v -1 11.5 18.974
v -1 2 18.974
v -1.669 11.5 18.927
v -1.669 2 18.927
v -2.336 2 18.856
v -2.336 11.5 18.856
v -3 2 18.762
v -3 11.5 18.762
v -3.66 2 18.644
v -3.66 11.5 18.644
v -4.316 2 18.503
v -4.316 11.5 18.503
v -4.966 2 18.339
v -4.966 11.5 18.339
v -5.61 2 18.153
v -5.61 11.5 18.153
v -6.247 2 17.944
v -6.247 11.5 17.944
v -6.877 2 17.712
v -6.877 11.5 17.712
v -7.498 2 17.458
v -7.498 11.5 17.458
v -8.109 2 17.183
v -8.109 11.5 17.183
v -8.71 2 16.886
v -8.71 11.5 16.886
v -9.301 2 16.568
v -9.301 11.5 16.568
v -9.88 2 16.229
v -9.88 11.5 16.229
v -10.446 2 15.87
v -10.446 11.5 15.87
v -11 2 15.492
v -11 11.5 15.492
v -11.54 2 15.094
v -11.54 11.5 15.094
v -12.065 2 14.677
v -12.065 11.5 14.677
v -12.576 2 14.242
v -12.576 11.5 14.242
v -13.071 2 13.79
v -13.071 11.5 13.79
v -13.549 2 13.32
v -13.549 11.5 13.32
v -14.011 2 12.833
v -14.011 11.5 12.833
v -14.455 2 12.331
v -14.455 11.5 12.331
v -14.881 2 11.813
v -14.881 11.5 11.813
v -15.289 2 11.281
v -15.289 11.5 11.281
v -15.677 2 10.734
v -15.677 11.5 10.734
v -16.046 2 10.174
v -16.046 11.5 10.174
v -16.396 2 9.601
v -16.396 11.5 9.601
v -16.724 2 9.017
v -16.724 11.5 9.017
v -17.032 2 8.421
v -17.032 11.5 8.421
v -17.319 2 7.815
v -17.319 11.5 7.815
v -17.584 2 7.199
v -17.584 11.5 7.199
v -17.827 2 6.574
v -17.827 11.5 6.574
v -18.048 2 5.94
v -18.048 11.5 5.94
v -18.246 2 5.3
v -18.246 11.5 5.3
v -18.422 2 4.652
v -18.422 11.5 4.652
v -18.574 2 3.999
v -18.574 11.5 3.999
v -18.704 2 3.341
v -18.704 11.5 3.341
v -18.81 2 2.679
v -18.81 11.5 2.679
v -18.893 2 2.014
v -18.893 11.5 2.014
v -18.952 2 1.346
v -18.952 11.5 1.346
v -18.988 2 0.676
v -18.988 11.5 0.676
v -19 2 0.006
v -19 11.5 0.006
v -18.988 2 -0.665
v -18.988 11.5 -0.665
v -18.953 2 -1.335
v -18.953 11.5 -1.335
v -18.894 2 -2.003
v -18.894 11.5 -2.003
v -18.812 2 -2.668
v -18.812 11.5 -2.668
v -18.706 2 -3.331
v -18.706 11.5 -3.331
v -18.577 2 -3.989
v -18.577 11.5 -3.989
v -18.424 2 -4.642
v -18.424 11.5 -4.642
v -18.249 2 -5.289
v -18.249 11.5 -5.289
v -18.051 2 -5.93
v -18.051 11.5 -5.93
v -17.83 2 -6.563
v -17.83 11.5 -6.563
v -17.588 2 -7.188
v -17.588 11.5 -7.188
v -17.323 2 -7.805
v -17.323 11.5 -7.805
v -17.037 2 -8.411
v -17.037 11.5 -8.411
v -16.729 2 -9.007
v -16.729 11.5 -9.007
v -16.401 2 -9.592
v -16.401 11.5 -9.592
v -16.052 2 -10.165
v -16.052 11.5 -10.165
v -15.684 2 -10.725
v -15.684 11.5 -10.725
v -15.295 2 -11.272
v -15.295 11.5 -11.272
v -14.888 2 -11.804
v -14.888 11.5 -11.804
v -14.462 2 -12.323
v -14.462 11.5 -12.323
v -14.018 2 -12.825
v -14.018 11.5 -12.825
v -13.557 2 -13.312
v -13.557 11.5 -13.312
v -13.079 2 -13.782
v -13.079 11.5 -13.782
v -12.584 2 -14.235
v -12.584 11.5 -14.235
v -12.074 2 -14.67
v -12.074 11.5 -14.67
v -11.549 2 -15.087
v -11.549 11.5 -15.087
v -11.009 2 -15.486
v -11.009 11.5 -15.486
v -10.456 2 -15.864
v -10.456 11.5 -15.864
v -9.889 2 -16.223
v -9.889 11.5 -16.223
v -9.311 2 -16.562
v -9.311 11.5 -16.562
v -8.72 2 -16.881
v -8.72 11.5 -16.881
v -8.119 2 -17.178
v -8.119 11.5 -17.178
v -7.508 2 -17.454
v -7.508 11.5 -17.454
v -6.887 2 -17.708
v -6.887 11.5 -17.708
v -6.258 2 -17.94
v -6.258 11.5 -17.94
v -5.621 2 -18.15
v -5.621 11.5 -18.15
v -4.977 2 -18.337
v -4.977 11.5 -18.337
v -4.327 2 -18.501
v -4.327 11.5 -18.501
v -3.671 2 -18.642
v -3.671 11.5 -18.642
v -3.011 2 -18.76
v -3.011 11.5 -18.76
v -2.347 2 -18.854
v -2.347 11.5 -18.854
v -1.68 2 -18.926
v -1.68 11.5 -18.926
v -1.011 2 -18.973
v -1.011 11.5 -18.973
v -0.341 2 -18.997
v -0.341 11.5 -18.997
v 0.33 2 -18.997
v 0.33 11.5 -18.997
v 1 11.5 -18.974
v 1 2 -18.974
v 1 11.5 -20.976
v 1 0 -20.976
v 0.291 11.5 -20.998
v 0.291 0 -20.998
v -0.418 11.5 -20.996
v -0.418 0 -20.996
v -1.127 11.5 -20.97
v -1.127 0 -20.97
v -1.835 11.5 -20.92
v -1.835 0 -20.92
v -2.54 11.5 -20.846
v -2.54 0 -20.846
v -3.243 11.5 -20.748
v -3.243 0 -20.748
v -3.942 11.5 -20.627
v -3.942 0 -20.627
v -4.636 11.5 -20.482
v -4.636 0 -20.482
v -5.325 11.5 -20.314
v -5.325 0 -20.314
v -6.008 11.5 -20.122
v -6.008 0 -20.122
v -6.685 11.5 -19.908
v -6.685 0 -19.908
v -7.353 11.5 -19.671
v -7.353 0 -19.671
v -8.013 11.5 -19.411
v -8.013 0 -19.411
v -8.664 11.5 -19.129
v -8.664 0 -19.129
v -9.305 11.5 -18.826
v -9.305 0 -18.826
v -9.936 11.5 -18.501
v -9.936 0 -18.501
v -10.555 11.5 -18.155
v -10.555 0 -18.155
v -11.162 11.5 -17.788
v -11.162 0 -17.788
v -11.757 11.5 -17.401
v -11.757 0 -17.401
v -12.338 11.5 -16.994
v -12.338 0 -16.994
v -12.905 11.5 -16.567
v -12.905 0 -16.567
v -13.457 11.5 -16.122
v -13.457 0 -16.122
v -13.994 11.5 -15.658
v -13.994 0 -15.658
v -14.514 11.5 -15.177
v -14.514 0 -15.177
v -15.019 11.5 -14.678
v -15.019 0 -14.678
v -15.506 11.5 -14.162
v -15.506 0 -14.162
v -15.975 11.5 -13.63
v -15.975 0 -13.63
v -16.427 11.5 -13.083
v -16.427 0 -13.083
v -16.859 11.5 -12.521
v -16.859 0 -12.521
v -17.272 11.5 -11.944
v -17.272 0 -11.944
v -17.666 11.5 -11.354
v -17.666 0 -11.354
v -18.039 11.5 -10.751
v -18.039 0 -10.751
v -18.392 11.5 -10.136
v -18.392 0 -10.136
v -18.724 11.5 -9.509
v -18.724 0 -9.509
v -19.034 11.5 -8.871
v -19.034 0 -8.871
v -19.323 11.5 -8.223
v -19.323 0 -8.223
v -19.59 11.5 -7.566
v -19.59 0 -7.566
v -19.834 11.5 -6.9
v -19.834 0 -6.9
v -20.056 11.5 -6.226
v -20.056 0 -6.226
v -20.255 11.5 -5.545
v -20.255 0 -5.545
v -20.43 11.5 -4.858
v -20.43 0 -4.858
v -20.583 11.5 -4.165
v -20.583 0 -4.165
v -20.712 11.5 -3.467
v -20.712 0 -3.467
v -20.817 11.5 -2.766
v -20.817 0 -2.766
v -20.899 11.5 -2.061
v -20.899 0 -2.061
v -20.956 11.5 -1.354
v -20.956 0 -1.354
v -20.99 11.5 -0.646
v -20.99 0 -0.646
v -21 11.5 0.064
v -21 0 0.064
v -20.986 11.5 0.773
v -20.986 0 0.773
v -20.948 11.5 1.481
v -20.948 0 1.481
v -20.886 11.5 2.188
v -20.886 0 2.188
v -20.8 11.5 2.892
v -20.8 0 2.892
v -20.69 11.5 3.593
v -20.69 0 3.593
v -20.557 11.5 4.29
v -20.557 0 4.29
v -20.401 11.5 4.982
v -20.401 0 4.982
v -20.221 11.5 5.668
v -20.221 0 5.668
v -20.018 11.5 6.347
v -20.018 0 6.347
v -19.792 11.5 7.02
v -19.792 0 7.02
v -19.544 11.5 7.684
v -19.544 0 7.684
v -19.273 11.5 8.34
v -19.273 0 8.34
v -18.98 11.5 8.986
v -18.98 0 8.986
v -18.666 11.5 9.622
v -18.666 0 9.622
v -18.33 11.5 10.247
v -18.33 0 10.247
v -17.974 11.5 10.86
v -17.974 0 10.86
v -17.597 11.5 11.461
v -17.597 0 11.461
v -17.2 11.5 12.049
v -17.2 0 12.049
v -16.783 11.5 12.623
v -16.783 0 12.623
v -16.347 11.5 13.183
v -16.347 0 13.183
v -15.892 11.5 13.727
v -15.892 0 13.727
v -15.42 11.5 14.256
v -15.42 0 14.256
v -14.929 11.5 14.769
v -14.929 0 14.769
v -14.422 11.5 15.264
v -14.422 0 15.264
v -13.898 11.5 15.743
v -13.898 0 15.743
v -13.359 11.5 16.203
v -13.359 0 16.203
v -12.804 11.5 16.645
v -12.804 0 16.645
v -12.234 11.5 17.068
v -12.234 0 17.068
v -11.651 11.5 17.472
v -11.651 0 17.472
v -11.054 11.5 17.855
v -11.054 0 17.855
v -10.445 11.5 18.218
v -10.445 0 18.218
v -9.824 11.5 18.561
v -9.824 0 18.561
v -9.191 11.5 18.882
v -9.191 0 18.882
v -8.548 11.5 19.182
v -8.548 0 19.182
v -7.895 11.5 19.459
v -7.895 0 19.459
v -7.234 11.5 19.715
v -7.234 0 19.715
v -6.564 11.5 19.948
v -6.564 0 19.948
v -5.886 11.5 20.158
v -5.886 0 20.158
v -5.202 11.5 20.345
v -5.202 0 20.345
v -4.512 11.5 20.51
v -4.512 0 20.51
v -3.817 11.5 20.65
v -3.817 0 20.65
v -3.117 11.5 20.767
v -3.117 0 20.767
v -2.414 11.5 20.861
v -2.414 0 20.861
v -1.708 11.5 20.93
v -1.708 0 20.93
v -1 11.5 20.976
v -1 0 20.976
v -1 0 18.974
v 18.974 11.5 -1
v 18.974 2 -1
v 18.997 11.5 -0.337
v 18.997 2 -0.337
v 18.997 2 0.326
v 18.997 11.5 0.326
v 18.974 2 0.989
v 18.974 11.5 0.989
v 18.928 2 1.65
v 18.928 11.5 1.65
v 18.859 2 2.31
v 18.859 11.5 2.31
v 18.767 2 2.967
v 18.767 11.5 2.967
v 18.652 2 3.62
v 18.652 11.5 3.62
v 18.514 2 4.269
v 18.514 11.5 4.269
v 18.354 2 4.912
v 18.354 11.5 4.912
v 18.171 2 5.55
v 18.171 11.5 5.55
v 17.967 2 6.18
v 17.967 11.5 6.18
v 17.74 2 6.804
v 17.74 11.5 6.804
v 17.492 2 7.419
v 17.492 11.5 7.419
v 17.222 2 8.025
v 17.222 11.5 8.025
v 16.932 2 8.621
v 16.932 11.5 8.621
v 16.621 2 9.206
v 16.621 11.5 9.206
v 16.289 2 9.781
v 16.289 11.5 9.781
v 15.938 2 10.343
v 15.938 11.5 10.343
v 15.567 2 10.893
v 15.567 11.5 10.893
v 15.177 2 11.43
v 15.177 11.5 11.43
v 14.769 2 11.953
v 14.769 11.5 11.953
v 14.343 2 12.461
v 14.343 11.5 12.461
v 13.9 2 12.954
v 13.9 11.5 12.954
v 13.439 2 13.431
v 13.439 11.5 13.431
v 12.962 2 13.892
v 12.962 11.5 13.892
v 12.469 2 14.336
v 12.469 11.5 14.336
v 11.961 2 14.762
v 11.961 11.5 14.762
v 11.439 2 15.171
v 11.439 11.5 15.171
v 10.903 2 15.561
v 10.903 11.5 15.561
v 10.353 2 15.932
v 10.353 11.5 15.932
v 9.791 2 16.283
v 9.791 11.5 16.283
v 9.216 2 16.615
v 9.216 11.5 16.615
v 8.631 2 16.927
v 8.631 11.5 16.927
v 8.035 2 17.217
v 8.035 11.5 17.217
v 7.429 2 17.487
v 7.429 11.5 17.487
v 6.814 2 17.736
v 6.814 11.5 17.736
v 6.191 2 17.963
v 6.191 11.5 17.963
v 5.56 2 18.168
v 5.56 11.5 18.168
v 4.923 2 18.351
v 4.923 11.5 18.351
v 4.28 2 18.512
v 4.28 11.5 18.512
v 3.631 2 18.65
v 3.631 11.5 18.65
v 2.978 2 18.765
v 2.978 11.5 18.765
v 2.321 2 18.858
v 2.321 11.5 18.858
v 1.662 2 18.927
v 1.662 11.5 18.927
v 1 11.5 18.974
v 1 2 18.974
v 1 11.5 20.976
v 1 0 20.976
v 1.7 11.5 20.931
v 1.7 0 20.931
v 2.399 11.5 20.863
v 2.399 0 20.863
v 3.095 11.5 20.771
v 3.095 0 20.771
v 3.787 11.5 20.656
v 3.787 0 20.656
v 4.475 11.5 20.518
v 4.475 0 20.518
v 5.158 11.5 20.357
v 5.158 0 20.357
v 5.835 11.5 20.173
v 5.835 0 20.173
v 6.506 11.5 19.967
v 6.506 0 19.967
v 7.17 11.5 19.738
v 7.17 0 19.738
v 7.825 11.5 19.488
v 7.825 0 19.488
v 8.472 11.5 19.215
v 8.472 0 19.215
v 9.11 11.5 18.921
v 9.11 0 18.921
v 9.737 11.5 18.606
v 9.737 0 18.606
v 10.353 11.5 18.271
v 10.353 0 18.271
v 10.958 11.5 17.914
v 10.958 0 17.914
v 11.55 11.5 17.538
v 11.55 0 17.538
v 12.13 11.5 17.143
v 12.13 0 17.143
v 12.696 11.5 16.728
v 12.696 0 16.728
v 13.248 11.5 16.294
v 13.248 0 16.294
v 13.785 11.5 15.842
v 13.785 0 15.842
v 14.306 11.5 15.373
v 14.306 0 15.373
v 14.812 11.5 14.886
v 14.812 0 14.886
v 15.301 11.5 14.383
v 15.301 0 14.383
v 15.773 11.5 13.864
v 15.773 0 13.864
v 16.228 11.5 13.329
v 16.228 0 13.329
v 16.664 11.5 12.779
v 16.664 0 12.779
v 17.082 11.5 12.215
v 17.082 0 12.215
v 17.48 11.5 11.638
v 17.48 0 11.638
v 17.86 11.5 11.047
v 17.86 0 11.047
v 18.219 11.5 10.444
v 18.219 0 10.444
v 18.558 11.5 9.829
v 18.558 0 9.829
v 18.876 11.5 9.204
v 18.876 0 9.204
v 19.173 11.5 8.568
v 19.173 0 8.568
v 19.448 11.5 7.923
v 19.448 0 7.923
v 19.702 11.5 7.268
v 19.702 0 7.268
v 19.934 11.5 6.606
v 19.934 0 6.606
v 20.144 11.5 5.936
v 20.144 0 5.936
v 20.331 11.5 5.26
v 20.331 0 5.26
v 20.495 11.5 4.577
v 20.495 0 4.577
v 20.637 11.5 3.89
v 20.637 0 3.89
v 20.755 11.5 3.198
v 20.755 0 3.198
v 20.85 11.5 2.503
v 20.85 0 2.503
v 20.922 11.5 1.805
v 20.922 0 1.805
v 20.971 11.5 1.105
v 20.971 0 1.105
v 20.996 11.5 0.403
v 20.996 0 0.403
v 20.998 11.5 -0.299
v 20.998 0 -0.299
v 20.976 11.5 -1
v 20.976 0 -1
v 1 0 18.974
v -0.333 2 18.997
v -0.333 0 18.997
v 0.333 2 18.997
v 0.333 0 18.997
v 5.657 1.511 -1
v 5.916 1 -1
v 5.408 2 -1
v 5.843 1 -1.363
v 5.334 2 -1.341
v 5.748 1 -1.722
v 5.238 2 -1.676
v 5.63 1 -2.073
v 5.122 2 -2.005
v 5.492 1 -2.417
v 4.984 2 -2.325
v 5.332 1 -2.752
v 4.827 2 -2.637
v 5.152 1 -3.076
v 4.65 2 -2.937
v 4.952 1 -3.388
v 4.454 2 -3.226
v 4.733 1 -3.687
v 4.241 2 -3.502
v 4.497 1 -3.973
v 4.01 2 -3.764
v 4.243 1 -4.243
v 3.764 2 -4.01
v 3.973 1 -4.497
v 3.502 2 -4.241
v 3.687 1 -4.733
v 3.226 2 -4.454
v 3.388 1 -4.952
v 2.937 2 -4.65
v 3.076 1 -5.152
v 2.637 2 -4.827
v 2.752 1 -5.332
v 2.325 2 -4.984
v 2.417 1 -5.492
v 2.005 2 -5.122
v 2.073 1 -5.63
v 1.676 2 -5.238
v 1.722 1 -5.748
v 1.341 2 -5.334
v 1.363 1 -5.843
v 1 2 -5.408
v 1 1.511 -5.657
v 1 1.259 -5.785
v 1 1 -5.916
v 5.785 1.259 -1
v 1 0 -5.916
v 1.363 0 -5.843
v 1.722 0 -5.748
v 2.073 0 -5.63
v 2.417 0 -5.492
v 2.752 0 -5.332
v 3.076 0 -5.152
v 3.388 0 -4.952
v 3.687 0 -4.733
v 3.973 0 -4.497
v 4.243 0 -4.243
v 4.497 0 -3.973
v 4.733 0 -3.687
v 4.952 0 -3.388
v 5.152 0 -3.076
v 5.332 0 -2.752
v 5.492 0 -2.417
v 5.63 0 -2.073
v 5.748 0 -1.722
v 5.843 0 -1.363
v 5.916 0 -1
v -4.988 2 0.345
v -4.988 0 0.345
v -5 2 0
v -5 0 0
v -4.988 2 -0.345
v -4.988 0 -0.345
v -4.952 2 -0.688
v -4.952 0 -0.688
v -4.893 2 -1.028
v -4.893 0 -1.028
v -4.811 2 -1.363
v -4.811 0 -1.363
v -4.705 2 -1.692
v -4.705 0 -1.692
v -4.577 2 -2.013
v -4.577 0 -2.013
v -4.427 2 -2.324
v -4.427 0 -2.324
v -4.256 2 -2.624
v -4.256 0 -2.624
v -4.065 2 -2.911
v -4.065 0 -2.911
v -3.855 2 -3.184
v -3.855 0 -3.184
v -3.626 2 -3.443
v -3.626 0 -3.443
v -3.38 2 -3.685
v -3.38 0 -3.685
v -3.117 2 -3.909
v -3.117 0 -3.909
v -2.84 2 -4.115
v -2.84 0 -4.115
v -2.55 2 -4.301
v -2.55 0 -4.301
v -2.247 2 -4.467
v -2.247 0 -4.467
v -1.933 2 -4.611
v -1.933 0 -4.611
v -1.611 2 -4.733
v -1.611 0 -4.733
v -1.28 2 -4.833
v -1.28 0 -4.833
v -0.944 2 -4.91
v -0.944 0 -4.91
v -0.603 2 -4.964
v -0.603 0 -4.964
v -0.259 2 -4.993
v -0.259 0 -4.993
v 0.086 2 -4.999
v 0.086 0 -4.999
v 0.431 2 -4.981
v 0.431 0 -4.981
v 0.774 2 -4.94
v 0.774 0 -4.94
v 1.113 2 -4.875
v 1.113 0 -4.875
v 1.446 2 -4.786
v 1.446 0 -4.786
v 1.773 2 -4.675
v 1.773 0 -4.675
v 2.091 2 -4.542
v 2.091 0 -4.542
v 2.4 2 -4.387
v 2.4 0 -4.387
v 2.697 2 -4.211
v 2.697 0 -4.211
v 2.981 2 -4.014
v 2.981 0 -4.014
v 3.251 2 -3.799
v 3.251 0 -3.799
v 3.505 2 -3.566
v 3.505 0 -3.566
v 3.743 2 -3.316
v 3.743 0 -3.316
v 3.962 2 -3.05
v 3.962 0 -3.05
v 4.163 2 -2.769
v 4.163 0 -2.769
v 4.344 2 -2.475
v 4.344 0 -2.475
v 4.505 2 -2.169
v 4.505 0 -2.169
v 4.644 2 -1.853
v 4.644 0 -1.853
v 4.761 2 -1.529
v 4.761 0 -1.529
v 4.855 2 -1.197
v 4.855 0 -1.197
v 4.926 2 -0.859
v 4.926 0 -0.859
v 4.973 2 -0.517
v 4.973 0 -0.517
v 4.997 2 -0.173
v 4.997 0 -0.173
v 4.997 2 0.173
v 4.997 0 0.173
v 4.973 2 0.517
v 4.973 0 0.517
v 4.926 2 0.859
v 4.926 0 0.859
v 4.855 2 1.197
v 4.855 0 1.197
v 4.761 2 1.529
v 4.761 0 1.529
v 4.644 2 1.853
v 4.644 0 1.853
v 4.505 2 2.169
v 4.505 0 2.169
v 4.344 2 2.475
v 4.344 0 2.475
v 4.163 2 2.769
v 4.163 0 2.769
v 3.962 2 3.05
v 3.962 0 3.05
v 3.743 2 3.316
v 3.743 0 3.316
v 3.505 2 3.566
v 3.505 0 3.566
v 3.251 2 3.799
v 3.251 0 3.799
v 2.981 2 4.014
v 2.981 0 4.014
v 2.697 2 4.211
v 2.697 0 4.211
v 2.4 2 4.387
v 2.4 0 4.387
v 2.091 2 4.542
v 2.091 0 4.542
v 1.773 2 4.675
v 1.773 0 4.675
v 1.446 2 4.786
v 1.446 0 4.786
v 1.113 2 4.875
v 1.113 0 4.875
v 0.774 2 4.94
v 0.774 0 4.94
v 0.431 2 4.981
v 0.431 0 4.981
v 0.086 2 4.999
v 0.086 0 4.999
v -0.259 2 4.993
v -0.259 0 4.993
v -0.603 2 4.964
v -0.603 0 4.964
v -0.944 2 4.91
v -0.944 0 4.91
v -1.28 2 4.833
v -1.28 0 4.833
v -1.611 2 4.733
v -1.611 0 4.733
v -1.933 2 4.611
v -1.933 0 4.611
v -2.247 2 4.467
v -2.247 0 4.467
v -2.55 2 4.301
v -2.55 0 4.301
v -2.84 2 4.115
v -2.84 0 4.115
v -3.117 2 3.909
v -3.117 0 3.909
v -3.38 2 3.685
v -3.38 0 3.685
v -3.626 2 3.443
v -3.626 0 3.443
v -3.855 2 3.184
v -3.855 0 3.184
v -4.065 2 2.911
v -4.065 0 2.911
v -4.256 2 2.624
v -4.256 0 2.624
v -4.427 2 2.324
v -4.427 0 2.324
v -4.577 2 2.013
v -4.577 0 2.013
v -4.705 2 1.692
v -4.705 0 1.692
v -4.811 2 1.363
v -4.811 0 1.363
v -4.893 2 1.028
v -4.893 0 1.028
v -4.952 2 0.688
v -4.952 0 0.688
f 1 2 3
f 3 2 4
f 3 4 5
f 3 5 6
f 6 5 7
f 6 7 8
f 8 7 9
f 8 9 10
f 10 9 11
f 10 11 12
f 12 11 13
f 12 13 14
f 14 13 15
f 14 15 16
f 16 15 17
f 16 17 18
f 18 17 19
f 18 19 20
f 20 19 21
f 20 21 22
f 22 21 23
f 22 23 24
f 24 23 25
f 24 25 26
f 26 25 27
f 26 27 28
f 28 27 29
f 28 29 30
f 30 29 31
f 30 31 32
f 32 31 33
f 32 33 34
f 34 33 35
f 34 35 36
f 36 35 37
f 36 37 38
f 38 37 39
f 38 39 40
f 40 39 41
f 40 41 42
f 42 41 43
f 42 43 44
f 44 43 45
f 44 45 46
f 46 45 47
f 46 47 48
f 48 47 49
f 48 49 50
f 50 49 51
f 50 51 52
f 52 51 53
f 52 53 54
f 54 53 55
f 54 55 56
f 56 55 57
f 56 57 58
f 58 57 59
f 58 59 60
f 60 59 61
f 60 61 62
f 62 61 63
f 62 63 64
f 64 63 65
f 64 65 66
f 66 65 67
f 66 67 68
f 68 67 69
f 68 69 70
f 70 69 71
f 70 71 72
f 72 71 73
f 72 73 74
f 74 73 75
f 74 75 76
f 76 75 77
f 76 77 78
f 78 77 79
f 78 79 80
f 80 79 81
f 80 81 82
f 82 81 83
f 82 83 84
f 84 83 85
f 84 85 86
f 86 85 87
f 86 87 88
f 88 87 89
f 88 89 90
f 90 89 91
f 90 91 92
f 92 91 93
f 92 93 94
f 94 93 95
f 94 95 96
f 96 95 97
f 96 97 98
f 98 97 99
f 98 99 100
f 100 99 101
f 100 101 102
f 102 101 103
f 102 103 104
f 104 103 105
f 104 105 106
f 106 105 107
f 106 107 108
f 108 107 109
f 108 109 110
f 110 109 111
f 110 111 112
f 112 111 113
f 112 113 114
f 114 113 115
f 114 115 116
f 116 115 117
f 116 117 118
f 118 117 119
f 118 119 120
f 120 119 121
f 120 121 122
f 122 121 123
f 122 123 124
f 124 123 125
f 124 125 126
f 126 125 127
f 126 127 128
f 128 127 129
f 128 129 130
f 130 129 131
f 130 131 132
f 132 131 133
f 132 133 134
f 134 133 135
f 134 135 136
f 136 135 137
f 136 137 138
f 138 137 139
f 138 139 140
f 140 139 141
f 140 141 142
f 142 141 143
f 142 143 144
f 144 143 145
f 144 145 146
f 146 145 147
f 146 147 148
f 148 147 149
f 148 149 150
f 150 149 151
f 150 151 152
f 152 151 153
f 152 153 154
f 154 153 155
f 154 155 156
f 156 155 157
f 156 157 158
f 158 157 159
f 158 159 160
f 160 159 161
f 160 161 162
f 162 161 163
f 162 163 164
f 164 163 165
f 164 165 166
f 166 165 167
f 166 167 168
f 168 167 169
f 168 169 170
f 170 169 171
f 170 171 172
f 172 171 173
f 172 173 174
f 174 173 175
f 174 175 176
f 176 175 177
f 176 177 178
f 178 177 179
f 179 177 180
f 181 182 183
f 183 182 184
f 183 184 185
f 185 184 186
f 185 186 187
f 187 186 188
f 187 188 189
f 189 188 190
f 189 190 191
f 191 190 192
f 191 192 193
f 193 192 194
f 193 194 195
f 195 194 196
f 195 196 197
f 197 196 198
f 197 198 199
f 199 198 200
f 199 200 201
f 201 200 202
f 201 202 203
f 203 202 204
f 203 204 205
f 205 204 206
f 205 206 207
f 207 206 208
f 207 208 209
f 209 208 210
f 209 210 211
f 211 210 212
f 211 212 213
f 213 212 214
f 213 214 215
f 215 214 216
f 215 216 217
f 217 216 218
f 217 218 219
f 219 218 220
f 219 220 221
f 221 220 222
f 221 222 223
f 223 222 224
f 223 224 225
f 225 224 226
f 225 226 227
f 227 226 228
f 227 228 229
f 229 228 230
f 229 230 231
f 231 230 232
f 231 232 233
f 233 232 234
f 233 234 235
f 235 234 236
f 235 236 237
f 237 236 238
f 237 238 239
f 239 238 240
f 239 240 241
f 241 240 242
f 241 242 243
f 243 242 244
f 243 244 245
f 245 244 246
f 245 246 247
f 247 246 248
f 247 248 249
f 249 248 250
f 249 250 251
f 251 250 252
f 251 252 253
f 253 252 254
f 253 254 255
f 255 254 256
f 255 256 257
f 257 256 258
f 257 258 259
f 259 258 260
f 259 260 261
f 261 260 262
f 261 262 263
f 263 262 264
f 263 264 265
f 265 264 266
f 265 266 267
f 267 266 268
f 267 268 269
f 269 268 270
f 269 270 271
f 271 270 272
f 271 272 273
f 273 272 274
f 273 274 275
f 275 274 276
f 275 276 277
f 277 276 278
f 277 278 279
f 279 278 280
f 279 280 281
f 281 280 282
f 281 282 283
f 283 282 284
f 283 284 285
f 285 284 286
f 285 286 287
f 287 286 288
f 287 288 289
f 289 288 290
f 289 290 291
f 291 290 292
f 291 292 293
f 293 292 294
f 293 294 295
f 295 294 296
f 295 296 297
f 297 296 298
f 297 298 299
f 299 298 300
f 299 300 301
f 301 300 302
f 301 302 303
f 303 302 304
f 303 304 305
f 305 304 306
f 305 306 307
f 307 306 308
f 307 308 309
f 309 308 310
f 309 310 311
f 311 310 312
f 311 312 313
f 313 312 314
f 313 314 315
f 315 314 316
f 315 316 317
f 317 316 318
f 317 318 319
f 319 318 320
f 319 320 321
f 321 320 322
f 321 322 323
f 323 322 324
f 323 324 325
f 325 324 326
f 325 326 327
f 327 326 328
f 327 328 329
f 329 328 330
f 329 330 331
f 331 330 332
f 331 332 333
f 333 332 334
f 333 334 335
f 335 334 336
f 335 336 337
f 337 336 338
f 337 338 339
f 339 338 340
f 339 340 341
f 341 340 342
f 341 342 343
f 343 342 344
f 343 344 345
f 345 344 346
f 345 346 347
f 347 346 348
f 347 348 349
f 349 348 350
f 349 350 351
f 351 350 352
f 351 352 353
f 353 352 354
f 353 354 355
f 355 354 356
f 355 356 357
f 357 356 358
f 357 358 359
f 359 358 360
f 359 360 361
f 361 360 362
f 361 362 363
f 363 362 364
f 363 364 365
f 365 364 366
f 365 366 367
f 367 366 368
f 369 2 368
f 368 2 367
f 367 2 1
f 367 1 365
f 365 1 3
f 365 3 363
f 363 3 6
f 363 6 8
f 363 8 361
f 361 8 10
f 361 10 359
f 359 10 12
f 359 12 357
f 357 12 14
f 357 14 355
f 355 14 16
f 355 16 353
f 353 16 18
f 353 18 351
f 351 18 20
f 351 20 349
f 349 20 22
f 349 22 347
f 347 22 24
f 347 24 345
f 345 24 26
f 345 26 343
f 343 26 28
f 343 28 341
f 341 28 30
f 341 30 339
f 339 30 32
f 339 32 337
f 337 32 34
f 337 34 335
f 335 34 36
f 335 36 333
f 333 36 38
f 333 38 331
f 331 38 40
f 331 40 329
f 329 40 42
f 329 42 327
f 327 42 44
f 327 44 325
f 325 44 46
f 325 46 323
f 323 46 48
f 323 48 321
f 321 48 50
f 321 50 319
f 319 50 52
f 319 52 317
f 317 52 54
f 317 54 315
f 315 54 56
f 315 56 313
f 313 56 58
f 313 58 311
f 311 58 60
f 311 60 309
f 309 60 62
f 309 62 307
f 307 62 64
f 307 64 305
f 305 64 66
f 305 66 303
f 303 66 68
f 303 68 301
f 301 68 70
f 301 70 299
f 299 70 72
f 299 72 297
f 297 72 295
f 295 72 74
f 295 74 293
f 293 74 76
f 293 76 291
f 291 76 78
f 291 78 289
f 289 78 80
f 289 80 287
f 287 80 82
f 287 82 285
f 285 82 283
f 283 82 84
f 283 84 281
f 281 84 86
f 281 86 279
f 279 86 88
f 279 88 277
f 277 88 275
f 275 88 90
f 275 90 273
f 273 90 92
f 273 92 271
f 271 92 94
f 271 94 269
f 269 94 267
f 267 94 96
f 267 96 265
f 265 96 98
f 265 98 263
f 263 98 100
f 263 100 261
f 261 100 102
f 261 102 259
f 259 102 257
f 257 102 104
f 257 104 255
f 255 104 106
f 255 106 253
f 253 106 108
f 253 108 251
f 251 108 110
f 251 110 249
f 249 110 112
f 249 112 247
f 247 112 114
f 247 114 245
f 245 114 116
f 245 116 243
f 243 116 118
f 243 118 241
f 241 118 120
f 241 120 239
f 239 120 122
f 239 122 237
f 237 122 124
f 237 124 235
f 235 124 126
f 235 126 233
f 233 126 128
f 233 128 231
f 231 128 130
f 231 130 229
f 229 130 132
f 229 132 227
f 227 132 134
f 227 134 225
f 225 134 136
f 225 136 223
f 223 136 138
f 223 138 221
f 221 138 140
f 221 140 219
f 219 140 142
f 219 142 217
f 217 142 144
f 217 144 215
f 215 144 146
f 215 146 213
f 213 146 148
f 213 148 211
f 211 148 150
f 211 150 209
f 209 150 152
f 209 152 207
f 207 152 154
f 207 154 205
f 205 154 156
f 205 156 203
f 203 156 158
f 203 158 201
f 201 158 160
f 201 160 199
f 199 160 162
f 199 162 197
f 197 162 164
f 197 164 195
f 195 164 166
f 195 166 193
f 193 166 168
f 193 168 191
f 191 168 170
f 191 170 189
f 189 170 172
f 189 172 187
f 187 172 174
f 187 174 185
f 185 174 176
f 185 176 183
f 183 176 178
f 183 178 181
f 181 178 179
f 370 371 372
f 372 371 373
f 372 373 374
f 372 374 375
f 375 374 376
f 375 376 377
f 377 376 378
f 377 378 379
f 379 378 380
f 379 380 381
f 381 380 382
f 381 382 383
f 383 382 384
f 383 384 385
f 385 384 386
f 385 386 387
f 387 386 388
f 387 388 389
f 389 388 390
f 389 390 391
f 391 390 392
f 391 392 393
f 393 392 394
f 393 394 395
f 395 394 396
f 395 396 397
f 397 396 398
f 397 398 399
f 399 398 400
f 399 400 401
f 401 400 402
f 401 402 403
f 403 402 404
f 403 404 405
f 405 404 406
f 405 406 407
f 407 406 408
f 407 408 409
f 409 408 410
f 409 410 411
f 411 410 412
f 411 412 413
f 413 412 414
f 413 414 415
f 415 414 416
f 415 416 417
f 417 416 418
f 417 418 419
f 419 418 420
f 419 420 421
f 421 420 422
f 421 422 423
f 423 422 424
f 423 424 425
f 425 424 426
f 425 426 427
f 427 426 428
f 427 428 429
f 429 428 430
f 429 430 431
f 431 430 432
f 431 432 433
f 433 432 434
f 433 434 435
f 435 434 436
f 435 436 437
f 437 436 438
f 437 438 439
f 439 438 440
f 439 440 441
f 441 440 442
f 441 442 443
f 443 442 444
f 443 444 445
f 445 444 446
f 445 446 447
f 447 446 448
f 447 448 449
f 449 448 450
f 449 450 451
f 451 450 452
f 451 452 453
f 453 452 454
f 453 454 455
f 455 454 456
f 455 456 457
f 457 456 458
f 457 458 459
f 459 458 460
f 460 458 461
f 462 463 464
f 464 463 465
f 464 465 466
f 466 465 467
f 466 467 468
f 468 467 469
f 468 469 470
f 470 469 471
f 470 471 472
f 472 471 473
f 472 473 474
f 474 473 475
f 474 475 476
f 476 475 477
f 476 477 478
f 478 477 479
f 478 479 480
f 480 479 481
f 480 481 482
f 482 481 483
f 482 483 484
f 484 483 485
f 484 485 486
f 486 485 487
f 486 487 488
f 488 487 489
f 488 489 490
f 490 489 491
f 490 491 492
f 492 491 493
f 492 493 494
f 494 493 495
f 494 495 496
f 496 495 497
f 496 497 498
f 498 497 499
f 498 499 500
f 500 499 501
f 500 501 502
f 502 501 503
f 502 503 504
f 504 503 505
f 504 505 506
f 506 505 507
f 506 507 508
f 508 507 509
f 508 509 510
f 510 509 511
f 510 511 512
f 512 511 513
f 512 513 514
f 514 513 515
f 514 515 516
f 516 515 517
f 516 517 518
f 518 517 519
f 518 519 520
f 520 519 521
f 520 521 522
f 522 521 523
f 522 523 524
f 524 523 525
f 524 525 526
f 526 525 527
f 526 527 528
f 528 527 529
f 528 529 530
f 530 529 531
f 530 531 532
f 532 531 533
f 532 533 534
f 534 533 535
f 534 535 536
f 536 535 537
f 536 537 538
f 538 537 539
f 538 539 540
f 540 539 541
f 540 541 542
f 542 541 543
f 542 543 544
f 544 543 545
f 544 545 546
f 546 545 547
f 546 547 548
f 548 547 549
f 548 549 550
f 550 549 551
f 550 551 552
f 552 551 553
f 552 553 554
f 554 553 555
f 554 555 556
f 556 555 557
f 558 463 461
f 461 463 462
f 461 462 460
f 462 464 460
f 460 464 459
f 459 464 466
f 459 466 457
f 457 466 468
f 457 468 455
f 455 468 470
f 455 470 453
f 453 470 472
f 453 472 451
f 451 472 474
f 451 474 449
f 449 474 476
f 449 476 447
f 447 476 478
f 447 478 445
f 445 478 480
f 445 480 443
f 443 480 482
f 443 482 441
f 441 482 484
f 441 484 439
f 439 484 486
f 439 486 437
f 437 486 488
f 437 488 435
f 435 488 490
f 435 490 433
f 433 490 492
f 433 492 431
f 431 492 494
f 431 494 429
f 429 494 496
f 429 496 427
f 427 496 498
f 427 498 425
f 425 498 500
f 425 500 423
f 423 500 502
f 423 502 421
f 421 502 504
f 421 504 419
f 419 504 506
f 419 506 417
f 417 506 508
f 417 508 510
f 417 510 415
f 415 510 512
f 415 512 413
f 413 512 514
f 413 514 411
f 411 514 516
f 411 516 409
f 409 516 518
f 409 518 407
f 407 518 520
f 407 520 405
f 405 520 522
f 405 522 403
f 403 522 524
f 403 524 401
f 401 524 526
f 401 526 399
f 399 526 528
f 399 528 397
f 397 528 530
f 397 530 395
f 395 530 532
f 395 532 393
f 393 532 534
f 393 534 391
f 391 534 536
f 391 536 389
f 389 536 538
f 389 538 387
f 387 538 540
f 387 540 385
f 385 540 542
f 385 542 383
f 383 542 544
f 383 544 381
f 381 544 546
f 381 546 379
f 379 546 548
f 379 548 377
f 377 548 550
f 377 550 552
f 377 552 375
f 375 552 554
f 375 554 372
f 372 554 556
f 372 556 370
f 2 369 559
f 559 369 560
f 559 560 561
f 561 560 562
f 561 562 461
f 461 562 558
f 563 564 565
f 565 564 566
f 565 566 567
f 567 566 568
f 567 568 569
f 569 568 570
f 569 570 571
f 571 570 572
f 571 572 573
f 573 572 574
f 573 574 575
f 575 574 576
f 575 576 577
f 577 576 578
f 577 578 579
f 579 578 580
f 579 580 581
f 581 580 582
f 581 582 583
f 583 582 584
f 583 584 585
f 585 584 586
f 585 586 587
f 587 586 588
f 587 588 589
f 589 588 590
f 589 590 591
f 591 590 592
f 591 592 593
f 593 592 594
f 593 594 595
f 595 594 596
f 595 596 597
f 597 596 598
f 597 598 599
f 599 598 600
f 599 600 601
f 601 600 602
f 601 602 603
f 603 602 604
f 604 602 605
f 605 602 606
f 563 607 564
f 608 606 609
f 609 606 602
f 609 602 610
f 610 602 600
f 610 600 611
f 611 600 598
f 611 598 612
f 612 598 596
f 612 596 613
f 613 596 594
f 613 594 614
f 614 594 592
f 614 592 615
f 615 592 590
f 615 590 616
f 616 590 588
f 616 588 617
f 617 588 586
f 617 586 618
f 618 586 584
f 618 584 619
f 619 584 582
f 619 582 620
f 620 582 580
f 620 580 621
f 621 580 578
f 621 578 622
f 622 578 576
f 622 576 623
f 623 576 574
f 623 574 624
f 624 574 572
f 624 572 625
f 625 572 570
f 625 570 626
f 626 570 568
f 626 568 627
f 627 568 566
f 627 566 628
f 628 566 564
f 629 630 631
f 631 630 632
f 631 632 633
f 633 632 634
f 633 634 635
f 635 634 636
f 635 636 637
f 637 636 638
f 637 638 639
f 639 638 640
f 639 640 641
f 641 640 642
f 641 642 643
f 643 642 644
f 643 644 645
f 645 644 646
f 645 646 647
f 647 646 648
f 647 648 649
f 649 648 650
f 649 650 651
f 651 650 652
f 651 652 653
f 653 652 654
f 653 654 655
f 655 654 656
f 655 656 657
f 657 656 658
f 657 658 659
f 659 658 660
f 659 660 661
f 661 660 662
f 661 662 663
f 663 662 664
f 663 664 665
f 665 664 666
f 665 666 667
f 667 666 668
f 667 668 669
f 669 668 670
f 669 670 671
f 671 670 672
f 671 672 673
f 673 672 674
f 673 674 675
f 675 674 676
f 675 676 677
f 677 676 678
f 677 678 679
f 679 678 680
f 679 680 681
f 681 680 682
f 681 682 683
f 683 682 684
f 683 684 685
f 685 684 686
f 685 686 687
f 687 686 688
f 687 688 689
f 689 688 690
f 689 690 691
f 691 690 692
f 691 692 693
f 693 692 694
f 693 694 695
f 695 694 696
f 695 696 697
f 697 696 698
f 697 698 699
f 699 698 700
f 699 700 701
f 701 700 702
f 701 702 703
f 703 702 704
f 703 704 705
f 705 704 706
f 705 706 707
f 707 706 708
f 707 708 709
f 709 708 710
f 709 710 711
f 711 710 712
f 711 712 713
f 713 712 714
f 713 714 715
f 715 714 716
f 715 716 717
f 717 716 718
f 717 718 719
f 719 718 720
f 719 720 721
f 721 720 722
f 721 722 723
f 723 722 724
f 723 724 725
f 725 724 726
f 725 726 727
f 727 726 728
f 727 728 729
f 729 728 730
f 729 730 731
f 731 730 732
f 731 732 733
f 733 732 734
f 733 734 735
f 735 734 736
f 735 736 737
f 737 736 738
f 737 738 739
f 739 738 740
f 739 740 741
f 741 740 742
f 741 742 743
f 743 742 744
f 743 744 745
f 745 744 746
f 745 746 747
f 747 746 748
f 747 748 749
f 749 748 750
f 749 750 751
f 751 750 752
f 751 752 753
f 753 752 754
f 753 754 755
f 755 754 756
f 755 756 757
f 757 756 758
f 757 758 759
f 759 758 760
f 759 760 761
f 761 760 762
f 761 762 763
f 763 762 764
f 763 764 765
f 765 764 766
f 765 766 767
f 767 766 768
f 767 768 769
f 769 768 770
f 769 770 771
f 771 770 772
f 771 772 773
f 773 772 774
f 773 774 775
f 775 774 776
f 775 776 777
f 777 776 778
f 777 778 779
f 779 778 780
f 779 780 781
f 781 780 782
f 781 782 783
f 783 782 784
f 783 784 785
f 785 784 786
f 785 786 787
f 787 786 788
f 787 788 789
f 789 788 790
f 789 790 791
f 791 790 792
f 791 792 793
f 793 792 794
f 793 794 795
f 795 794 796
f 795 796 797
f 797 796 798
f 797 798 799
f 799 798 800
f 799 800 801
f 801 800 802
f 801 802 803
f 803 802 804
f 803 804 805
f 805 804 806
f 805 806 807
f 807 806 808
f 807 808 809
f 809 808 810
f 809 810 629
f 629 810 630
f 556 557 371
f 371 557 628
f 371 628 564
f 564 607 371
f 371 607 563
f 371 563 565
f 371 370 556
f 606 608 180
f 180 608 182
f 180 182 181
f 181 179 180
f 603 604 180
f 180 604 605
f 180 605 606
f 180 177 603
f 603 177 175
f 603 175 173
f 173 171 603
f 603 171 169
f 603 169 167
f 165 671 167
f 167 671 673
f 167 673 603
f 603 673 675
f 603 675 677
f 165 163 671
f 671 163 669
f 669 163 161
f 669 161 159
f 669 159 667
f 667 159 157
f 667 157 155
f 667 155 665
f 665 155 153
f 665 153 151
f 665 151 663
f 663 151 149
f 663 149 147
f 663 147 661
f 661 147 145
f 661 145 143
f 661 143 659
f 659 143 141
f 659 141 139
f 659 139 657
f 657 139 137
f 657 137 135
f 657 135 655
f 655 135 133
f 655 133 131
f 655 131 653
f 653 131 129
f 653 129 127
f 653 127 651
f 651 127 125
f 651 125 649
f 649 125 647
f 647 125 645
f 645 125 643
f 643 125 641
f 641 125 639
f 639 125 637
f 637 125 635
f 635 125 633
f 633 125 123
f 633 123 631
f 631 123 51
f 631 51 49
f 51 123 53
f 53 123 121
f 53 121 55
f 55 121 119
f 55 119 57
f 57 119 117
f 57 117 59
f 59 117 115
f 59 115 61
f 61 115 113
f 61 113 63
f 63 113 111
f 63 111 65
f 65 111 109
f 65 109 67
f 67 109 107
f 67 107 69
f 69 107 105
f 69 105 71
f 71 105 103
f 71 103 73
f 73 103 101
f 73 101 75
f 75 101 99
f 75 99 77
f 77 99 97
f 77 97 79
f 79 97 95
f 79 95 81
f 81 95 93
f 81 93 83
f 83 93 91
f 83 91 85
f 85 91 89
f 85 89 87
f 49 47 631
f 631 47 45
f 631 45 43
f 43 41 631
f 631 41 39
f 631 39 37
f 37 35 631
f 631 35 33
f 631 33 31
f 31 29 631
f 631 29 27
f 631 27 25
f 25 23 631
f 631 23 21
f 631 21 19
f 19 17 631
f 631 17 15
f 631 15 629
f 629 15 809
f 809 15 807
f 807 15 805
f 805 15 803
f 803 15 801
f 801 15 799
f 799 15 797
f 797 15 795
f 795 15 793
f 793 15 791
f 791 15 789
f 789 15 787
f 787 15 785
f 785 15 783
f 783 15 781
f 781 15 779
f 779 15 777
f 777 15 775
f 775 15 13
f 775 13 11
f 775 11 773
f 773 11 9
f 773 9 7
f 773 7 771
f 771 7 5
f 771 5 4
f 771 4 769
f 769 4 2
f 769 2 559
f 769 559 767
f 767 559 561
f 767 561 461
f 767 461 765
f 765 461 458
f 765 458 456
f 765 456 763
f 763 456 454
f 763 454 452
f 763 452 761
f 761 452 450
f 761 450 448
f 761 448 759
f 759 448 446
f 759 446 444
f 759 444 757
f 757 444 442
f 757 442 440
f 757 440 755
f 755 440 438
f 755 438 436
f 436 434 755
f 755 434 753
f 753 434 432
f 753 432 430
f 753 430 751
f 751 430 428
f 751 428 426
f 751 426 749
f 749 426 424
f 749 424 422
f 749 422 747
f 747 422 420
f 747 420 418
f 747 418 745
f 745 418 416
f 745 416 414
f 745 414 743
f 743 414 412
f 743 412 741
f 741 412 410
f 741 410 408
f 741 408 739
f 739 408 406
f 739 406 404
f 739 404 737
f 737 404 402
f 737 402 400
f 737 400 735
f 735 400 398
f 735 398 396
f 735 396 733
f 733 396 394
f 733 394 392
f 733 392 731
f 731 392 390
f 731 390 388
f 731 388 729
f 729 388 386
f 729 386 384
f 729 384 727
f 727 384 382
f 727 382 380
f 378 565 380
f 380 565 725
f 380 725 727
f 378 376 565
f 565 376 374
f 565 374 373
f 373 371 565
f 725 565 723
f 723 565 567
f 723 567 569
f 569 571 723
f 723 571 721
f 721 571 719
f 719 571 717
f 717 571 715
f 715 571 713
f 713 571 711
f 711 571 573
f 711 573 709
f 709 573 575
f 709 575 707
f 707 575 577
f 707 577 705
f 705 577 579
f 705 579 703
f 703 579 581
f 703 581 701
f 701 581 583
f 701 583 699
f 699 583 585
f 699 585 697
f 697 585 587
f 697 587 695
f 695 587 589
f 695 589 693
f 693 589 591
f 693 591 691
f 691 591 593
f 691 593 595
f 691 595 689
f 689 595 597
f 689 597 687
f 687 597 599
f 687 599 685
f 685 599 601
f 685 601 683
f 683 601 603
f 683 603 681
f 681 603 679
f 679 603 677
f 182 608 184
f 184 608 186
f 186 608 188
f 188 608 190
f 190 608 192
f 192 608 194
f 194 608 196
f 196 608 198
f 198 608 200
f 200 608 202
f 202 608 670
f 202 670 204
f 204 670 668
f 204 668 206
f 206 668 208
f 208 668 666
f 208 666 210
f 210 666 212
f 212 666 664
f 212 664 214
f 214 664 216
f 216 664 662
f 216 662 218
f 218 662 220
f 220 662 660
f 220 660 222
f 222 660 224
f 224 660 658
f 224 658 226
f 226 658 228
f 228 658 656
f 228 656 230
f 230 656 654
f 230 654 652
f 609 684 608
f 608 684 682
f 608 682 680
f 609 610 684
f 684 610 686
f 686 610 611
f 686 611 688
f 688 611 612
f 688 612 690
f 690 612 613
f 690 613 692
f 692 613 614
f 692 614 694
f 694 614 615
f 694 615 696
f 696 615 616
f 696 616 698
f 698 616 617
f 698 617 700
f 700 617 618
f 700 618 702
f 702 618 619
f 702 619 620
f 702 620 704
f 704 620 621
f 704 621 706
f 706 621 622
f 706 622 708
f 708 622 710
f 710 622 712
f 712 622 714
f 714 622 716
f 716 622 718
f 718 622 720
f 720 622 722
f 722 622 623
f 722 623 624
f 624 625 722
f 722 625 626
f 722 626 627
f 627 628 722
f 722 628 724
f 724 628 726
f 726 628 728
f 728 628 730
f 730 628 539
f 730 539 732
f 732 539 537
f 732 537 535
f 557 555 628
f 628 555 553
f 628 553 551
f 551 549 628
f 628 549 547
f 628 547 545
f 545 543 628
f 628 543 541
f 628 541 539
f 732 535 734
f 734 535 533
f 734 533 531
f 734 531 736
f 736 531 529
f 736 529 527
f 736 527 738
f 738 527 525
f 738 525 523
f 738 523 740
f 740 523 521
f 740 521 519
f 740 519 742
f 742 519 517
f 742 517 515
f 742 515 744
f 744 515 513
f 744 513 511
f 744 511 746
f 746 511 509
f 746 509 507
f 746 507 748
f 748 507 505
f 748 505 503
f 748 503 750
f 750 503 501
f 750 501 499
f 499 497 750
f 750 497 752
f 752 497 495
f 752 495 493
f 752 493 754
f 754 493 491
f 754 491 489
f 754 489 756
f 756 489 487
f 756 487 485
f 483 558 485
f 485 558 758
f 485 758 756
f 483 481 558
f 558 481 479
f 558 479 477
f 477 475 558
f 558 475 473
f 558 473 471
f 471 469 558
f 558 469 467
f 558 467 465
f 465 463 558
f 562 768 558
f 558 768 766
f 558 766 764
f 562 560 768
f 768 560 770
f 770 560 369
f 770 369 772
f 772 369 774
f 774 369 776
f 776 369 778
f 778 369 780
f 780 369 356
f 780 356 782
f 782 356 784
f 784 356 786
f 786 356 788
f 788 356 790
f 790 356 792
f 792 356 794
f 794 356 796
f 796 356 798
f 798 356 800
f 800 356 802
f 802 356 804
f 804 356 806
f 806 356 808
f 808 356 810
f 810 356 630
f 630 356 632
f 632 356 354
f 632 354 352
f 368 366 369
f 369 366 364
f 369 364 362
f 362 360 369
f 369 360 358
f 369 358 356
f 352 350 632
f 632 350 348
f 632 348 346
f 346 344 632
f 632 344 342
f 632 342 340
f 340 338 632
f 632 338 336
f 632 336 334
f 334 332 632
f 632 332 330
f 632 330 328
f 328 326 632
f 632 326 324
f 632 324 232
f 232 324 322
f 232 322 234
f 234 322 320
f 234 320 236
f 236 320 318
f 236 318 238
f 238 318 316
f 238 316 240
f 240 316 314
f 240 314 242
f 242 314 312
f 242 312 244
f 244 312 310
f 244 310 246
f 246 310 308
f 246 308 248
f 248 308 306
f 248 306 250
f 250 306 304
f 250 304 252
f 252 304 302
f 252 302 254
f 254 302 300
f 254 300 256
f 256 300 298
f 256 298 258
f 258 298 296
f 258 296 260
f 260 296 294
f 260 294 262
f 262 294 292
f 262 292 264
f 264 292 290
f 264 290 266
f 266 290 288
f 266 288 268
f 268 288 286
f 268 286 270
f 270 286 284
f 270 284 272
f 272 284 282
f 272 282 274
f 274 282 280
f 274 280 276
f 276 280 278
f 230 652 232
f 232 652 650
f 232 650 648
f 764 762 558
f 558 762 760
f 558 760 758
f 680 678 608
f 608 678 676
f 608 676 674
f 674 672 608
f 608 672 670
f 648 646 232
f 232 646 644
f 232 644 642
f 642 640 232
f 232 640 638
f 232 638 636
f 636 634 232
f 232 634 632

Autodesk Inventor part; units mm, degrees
ref_plane "YZ Plane" through (0, 0, 0) normal (1, 0, 0) x (0, 1, 0)
ref_plane "XZ Plane" through (0, 0, 0) normal (0, 1, 0) x (-1, 0, 0)
ref_plane "XY Plane" through (0, 0, 0) normal (0, 0, 1) x (1, 0, 0)
sketch "Sketch9" plane through (0, 0, 0) normal (0, 1, 0) x (-1, 0, 0)
  line L0 (21, 0) -> (-21, 0) construction
  line L1 (0, 21) -> (0, -21) construction
  line L2 (21, -1) -> (20.9762, -1)
  line L3 (21, 1) -> (20.9762, 1)
  line L4 (-20.9762, 1) -> (-21, 1)
  line L5 (1, 21) -> (1, 20.9762)
  line L6 (1, -20.9762) -> (1, -21)
  line L7 (-1, 21) -> (-1, 20.9762)
  line L8 (-1, -5.9161) -> (-1, -21)
  line L9 (-5.9161, -1) -> (-18.9762, -1)
  circle A0 centre (0, 0) radius 5
  arc A1 (-5.9161, -1) -> (-1, -5.9161) centre (0, 0) ccw
  line L10 (-20.9762, -1) -> (-18.9762, -1)
  line L11 (1, -21) -> (1, -3.873) construction
  line L12 (-3.873, 1) -> (-18.9762, 1) construction
  line L13 (-18.9762, 1) -> (-20.9762, 1) construction
  line L14 (-3.873, 1) -> (20.9762, 1) construction
  line L15 (-5.9161, -1) -> (20.9762, -1) construction
  line L16 (1, -3.873) -> (1, 20.9762) construction
  line L17 (-1, -5.9161) -> (-1, 20.9762) construction
  line L18 (0, 21) -> (0, 19) construction
  line L19 (0, 19) -> (1, 19) construction
  arc A2 (-1, -20.9762) -> (0, 21) centre (0, 0) ccw construction
  arc A3 (20.9762, 1) -> (-20.9762, -1) centre (0, 0) ccw construction
  arc A4 (-1, -18.9737) -> (-18.9737, -1) centre (0, 0) ccw
  line L20 (-1, 19) -> (1, 19)
  point P0 (-4.899, -1)
  point P1 (-1, -4.899)
  dimension "d35" = 10
  dimension "d50" = 2
  dimension "d53" = 38
extrude "Extrusion5" add sketch "Sketch9" along normal blind 2
chamfer "Chamfer1" distance 0.5 distance2 1 1 edges at (4.2426, 2, -4.2426) measured on face at (13.5988, 2, 4.219)
sketch "Sketch12" plane through (0, 0, 0) normal (0, 1, 0) x (-1, 0, 0)
  circle A0 centre (0, 0) radius 5 projected
  line L0 (-18.9737, -1) -> (-5.9161, -1) projected
  line L1 (-18.9737, -1) -> (-20.9762, -1)
  line L2 (-1, -5.9161) -> (-1, -18.9737) projected
  line L3 (-1, -18.9737) -> (-1, -20.9762)
  line L4 (-1, -20.9762) -> (-1, 20.9762) construction
  line L5 (-20.9762, -1) -> (20.9762, -1) construction
  line L6 (1, -20.9762) -> (1, 20.9762) construction
  line L7 (-20.9762, 1) -> (20.9762, 1) construction
  line L8 (-1, 20.9762) -> (-1, 18.9762)
  line L9 (1, 20.9762) -> (1, 18.9762)
  arc A1 (-1, -20.9762) -> (1, 20.9762) centre (0, 0) ccw
  arc A2 (-1, 20.9762) -> (-20.9762, -1) centre (0, 0) ccw
  line L10 (-1, -18) -> (-1, -20.9762)
  line L11 (-17.9722, -1) -> (-20.9762, -1)
  line L12 (1, 20.9762) -> (1, 18.9737)
  line L13 (-1, 20.9762) -> (-1, 18.9737)
  arc A3 (-1, -18.9737) -> (1, 18.9737) centre (0, 0) ccw
  arc A4 (-1, 18.9737) -> (-18.9737, -1) centre (0, 0) ccw
  line L14 (1, 18.9762) -> (0.9512, 18.9762)
  line L15 (-0.9512, 18.9762) -> (-1, 18.9762)
  line L16 (1, 18.9762) -> (0.9512, 18.9762)
  line L17 (-0.9512, 18.9762) -> (-1, 18.9762)
  point P0 (-5.4083, -1)
  point P1 (-1, -5.4083)
  point P2 (-1, 17.9722)
  point P3 (1, 18.9737)
  dimension "d63" = 2
  dimension "d64" = 2
  dimension "d65" = 2
  dimension "d66" = 2
extrude "Extrusion8" add sketch "Sketch12" along normal blind 11.5 contours L1 A2 L8 L13 A4 | A3 L12 L9 A1 L3
properties part number "base layer 2"
